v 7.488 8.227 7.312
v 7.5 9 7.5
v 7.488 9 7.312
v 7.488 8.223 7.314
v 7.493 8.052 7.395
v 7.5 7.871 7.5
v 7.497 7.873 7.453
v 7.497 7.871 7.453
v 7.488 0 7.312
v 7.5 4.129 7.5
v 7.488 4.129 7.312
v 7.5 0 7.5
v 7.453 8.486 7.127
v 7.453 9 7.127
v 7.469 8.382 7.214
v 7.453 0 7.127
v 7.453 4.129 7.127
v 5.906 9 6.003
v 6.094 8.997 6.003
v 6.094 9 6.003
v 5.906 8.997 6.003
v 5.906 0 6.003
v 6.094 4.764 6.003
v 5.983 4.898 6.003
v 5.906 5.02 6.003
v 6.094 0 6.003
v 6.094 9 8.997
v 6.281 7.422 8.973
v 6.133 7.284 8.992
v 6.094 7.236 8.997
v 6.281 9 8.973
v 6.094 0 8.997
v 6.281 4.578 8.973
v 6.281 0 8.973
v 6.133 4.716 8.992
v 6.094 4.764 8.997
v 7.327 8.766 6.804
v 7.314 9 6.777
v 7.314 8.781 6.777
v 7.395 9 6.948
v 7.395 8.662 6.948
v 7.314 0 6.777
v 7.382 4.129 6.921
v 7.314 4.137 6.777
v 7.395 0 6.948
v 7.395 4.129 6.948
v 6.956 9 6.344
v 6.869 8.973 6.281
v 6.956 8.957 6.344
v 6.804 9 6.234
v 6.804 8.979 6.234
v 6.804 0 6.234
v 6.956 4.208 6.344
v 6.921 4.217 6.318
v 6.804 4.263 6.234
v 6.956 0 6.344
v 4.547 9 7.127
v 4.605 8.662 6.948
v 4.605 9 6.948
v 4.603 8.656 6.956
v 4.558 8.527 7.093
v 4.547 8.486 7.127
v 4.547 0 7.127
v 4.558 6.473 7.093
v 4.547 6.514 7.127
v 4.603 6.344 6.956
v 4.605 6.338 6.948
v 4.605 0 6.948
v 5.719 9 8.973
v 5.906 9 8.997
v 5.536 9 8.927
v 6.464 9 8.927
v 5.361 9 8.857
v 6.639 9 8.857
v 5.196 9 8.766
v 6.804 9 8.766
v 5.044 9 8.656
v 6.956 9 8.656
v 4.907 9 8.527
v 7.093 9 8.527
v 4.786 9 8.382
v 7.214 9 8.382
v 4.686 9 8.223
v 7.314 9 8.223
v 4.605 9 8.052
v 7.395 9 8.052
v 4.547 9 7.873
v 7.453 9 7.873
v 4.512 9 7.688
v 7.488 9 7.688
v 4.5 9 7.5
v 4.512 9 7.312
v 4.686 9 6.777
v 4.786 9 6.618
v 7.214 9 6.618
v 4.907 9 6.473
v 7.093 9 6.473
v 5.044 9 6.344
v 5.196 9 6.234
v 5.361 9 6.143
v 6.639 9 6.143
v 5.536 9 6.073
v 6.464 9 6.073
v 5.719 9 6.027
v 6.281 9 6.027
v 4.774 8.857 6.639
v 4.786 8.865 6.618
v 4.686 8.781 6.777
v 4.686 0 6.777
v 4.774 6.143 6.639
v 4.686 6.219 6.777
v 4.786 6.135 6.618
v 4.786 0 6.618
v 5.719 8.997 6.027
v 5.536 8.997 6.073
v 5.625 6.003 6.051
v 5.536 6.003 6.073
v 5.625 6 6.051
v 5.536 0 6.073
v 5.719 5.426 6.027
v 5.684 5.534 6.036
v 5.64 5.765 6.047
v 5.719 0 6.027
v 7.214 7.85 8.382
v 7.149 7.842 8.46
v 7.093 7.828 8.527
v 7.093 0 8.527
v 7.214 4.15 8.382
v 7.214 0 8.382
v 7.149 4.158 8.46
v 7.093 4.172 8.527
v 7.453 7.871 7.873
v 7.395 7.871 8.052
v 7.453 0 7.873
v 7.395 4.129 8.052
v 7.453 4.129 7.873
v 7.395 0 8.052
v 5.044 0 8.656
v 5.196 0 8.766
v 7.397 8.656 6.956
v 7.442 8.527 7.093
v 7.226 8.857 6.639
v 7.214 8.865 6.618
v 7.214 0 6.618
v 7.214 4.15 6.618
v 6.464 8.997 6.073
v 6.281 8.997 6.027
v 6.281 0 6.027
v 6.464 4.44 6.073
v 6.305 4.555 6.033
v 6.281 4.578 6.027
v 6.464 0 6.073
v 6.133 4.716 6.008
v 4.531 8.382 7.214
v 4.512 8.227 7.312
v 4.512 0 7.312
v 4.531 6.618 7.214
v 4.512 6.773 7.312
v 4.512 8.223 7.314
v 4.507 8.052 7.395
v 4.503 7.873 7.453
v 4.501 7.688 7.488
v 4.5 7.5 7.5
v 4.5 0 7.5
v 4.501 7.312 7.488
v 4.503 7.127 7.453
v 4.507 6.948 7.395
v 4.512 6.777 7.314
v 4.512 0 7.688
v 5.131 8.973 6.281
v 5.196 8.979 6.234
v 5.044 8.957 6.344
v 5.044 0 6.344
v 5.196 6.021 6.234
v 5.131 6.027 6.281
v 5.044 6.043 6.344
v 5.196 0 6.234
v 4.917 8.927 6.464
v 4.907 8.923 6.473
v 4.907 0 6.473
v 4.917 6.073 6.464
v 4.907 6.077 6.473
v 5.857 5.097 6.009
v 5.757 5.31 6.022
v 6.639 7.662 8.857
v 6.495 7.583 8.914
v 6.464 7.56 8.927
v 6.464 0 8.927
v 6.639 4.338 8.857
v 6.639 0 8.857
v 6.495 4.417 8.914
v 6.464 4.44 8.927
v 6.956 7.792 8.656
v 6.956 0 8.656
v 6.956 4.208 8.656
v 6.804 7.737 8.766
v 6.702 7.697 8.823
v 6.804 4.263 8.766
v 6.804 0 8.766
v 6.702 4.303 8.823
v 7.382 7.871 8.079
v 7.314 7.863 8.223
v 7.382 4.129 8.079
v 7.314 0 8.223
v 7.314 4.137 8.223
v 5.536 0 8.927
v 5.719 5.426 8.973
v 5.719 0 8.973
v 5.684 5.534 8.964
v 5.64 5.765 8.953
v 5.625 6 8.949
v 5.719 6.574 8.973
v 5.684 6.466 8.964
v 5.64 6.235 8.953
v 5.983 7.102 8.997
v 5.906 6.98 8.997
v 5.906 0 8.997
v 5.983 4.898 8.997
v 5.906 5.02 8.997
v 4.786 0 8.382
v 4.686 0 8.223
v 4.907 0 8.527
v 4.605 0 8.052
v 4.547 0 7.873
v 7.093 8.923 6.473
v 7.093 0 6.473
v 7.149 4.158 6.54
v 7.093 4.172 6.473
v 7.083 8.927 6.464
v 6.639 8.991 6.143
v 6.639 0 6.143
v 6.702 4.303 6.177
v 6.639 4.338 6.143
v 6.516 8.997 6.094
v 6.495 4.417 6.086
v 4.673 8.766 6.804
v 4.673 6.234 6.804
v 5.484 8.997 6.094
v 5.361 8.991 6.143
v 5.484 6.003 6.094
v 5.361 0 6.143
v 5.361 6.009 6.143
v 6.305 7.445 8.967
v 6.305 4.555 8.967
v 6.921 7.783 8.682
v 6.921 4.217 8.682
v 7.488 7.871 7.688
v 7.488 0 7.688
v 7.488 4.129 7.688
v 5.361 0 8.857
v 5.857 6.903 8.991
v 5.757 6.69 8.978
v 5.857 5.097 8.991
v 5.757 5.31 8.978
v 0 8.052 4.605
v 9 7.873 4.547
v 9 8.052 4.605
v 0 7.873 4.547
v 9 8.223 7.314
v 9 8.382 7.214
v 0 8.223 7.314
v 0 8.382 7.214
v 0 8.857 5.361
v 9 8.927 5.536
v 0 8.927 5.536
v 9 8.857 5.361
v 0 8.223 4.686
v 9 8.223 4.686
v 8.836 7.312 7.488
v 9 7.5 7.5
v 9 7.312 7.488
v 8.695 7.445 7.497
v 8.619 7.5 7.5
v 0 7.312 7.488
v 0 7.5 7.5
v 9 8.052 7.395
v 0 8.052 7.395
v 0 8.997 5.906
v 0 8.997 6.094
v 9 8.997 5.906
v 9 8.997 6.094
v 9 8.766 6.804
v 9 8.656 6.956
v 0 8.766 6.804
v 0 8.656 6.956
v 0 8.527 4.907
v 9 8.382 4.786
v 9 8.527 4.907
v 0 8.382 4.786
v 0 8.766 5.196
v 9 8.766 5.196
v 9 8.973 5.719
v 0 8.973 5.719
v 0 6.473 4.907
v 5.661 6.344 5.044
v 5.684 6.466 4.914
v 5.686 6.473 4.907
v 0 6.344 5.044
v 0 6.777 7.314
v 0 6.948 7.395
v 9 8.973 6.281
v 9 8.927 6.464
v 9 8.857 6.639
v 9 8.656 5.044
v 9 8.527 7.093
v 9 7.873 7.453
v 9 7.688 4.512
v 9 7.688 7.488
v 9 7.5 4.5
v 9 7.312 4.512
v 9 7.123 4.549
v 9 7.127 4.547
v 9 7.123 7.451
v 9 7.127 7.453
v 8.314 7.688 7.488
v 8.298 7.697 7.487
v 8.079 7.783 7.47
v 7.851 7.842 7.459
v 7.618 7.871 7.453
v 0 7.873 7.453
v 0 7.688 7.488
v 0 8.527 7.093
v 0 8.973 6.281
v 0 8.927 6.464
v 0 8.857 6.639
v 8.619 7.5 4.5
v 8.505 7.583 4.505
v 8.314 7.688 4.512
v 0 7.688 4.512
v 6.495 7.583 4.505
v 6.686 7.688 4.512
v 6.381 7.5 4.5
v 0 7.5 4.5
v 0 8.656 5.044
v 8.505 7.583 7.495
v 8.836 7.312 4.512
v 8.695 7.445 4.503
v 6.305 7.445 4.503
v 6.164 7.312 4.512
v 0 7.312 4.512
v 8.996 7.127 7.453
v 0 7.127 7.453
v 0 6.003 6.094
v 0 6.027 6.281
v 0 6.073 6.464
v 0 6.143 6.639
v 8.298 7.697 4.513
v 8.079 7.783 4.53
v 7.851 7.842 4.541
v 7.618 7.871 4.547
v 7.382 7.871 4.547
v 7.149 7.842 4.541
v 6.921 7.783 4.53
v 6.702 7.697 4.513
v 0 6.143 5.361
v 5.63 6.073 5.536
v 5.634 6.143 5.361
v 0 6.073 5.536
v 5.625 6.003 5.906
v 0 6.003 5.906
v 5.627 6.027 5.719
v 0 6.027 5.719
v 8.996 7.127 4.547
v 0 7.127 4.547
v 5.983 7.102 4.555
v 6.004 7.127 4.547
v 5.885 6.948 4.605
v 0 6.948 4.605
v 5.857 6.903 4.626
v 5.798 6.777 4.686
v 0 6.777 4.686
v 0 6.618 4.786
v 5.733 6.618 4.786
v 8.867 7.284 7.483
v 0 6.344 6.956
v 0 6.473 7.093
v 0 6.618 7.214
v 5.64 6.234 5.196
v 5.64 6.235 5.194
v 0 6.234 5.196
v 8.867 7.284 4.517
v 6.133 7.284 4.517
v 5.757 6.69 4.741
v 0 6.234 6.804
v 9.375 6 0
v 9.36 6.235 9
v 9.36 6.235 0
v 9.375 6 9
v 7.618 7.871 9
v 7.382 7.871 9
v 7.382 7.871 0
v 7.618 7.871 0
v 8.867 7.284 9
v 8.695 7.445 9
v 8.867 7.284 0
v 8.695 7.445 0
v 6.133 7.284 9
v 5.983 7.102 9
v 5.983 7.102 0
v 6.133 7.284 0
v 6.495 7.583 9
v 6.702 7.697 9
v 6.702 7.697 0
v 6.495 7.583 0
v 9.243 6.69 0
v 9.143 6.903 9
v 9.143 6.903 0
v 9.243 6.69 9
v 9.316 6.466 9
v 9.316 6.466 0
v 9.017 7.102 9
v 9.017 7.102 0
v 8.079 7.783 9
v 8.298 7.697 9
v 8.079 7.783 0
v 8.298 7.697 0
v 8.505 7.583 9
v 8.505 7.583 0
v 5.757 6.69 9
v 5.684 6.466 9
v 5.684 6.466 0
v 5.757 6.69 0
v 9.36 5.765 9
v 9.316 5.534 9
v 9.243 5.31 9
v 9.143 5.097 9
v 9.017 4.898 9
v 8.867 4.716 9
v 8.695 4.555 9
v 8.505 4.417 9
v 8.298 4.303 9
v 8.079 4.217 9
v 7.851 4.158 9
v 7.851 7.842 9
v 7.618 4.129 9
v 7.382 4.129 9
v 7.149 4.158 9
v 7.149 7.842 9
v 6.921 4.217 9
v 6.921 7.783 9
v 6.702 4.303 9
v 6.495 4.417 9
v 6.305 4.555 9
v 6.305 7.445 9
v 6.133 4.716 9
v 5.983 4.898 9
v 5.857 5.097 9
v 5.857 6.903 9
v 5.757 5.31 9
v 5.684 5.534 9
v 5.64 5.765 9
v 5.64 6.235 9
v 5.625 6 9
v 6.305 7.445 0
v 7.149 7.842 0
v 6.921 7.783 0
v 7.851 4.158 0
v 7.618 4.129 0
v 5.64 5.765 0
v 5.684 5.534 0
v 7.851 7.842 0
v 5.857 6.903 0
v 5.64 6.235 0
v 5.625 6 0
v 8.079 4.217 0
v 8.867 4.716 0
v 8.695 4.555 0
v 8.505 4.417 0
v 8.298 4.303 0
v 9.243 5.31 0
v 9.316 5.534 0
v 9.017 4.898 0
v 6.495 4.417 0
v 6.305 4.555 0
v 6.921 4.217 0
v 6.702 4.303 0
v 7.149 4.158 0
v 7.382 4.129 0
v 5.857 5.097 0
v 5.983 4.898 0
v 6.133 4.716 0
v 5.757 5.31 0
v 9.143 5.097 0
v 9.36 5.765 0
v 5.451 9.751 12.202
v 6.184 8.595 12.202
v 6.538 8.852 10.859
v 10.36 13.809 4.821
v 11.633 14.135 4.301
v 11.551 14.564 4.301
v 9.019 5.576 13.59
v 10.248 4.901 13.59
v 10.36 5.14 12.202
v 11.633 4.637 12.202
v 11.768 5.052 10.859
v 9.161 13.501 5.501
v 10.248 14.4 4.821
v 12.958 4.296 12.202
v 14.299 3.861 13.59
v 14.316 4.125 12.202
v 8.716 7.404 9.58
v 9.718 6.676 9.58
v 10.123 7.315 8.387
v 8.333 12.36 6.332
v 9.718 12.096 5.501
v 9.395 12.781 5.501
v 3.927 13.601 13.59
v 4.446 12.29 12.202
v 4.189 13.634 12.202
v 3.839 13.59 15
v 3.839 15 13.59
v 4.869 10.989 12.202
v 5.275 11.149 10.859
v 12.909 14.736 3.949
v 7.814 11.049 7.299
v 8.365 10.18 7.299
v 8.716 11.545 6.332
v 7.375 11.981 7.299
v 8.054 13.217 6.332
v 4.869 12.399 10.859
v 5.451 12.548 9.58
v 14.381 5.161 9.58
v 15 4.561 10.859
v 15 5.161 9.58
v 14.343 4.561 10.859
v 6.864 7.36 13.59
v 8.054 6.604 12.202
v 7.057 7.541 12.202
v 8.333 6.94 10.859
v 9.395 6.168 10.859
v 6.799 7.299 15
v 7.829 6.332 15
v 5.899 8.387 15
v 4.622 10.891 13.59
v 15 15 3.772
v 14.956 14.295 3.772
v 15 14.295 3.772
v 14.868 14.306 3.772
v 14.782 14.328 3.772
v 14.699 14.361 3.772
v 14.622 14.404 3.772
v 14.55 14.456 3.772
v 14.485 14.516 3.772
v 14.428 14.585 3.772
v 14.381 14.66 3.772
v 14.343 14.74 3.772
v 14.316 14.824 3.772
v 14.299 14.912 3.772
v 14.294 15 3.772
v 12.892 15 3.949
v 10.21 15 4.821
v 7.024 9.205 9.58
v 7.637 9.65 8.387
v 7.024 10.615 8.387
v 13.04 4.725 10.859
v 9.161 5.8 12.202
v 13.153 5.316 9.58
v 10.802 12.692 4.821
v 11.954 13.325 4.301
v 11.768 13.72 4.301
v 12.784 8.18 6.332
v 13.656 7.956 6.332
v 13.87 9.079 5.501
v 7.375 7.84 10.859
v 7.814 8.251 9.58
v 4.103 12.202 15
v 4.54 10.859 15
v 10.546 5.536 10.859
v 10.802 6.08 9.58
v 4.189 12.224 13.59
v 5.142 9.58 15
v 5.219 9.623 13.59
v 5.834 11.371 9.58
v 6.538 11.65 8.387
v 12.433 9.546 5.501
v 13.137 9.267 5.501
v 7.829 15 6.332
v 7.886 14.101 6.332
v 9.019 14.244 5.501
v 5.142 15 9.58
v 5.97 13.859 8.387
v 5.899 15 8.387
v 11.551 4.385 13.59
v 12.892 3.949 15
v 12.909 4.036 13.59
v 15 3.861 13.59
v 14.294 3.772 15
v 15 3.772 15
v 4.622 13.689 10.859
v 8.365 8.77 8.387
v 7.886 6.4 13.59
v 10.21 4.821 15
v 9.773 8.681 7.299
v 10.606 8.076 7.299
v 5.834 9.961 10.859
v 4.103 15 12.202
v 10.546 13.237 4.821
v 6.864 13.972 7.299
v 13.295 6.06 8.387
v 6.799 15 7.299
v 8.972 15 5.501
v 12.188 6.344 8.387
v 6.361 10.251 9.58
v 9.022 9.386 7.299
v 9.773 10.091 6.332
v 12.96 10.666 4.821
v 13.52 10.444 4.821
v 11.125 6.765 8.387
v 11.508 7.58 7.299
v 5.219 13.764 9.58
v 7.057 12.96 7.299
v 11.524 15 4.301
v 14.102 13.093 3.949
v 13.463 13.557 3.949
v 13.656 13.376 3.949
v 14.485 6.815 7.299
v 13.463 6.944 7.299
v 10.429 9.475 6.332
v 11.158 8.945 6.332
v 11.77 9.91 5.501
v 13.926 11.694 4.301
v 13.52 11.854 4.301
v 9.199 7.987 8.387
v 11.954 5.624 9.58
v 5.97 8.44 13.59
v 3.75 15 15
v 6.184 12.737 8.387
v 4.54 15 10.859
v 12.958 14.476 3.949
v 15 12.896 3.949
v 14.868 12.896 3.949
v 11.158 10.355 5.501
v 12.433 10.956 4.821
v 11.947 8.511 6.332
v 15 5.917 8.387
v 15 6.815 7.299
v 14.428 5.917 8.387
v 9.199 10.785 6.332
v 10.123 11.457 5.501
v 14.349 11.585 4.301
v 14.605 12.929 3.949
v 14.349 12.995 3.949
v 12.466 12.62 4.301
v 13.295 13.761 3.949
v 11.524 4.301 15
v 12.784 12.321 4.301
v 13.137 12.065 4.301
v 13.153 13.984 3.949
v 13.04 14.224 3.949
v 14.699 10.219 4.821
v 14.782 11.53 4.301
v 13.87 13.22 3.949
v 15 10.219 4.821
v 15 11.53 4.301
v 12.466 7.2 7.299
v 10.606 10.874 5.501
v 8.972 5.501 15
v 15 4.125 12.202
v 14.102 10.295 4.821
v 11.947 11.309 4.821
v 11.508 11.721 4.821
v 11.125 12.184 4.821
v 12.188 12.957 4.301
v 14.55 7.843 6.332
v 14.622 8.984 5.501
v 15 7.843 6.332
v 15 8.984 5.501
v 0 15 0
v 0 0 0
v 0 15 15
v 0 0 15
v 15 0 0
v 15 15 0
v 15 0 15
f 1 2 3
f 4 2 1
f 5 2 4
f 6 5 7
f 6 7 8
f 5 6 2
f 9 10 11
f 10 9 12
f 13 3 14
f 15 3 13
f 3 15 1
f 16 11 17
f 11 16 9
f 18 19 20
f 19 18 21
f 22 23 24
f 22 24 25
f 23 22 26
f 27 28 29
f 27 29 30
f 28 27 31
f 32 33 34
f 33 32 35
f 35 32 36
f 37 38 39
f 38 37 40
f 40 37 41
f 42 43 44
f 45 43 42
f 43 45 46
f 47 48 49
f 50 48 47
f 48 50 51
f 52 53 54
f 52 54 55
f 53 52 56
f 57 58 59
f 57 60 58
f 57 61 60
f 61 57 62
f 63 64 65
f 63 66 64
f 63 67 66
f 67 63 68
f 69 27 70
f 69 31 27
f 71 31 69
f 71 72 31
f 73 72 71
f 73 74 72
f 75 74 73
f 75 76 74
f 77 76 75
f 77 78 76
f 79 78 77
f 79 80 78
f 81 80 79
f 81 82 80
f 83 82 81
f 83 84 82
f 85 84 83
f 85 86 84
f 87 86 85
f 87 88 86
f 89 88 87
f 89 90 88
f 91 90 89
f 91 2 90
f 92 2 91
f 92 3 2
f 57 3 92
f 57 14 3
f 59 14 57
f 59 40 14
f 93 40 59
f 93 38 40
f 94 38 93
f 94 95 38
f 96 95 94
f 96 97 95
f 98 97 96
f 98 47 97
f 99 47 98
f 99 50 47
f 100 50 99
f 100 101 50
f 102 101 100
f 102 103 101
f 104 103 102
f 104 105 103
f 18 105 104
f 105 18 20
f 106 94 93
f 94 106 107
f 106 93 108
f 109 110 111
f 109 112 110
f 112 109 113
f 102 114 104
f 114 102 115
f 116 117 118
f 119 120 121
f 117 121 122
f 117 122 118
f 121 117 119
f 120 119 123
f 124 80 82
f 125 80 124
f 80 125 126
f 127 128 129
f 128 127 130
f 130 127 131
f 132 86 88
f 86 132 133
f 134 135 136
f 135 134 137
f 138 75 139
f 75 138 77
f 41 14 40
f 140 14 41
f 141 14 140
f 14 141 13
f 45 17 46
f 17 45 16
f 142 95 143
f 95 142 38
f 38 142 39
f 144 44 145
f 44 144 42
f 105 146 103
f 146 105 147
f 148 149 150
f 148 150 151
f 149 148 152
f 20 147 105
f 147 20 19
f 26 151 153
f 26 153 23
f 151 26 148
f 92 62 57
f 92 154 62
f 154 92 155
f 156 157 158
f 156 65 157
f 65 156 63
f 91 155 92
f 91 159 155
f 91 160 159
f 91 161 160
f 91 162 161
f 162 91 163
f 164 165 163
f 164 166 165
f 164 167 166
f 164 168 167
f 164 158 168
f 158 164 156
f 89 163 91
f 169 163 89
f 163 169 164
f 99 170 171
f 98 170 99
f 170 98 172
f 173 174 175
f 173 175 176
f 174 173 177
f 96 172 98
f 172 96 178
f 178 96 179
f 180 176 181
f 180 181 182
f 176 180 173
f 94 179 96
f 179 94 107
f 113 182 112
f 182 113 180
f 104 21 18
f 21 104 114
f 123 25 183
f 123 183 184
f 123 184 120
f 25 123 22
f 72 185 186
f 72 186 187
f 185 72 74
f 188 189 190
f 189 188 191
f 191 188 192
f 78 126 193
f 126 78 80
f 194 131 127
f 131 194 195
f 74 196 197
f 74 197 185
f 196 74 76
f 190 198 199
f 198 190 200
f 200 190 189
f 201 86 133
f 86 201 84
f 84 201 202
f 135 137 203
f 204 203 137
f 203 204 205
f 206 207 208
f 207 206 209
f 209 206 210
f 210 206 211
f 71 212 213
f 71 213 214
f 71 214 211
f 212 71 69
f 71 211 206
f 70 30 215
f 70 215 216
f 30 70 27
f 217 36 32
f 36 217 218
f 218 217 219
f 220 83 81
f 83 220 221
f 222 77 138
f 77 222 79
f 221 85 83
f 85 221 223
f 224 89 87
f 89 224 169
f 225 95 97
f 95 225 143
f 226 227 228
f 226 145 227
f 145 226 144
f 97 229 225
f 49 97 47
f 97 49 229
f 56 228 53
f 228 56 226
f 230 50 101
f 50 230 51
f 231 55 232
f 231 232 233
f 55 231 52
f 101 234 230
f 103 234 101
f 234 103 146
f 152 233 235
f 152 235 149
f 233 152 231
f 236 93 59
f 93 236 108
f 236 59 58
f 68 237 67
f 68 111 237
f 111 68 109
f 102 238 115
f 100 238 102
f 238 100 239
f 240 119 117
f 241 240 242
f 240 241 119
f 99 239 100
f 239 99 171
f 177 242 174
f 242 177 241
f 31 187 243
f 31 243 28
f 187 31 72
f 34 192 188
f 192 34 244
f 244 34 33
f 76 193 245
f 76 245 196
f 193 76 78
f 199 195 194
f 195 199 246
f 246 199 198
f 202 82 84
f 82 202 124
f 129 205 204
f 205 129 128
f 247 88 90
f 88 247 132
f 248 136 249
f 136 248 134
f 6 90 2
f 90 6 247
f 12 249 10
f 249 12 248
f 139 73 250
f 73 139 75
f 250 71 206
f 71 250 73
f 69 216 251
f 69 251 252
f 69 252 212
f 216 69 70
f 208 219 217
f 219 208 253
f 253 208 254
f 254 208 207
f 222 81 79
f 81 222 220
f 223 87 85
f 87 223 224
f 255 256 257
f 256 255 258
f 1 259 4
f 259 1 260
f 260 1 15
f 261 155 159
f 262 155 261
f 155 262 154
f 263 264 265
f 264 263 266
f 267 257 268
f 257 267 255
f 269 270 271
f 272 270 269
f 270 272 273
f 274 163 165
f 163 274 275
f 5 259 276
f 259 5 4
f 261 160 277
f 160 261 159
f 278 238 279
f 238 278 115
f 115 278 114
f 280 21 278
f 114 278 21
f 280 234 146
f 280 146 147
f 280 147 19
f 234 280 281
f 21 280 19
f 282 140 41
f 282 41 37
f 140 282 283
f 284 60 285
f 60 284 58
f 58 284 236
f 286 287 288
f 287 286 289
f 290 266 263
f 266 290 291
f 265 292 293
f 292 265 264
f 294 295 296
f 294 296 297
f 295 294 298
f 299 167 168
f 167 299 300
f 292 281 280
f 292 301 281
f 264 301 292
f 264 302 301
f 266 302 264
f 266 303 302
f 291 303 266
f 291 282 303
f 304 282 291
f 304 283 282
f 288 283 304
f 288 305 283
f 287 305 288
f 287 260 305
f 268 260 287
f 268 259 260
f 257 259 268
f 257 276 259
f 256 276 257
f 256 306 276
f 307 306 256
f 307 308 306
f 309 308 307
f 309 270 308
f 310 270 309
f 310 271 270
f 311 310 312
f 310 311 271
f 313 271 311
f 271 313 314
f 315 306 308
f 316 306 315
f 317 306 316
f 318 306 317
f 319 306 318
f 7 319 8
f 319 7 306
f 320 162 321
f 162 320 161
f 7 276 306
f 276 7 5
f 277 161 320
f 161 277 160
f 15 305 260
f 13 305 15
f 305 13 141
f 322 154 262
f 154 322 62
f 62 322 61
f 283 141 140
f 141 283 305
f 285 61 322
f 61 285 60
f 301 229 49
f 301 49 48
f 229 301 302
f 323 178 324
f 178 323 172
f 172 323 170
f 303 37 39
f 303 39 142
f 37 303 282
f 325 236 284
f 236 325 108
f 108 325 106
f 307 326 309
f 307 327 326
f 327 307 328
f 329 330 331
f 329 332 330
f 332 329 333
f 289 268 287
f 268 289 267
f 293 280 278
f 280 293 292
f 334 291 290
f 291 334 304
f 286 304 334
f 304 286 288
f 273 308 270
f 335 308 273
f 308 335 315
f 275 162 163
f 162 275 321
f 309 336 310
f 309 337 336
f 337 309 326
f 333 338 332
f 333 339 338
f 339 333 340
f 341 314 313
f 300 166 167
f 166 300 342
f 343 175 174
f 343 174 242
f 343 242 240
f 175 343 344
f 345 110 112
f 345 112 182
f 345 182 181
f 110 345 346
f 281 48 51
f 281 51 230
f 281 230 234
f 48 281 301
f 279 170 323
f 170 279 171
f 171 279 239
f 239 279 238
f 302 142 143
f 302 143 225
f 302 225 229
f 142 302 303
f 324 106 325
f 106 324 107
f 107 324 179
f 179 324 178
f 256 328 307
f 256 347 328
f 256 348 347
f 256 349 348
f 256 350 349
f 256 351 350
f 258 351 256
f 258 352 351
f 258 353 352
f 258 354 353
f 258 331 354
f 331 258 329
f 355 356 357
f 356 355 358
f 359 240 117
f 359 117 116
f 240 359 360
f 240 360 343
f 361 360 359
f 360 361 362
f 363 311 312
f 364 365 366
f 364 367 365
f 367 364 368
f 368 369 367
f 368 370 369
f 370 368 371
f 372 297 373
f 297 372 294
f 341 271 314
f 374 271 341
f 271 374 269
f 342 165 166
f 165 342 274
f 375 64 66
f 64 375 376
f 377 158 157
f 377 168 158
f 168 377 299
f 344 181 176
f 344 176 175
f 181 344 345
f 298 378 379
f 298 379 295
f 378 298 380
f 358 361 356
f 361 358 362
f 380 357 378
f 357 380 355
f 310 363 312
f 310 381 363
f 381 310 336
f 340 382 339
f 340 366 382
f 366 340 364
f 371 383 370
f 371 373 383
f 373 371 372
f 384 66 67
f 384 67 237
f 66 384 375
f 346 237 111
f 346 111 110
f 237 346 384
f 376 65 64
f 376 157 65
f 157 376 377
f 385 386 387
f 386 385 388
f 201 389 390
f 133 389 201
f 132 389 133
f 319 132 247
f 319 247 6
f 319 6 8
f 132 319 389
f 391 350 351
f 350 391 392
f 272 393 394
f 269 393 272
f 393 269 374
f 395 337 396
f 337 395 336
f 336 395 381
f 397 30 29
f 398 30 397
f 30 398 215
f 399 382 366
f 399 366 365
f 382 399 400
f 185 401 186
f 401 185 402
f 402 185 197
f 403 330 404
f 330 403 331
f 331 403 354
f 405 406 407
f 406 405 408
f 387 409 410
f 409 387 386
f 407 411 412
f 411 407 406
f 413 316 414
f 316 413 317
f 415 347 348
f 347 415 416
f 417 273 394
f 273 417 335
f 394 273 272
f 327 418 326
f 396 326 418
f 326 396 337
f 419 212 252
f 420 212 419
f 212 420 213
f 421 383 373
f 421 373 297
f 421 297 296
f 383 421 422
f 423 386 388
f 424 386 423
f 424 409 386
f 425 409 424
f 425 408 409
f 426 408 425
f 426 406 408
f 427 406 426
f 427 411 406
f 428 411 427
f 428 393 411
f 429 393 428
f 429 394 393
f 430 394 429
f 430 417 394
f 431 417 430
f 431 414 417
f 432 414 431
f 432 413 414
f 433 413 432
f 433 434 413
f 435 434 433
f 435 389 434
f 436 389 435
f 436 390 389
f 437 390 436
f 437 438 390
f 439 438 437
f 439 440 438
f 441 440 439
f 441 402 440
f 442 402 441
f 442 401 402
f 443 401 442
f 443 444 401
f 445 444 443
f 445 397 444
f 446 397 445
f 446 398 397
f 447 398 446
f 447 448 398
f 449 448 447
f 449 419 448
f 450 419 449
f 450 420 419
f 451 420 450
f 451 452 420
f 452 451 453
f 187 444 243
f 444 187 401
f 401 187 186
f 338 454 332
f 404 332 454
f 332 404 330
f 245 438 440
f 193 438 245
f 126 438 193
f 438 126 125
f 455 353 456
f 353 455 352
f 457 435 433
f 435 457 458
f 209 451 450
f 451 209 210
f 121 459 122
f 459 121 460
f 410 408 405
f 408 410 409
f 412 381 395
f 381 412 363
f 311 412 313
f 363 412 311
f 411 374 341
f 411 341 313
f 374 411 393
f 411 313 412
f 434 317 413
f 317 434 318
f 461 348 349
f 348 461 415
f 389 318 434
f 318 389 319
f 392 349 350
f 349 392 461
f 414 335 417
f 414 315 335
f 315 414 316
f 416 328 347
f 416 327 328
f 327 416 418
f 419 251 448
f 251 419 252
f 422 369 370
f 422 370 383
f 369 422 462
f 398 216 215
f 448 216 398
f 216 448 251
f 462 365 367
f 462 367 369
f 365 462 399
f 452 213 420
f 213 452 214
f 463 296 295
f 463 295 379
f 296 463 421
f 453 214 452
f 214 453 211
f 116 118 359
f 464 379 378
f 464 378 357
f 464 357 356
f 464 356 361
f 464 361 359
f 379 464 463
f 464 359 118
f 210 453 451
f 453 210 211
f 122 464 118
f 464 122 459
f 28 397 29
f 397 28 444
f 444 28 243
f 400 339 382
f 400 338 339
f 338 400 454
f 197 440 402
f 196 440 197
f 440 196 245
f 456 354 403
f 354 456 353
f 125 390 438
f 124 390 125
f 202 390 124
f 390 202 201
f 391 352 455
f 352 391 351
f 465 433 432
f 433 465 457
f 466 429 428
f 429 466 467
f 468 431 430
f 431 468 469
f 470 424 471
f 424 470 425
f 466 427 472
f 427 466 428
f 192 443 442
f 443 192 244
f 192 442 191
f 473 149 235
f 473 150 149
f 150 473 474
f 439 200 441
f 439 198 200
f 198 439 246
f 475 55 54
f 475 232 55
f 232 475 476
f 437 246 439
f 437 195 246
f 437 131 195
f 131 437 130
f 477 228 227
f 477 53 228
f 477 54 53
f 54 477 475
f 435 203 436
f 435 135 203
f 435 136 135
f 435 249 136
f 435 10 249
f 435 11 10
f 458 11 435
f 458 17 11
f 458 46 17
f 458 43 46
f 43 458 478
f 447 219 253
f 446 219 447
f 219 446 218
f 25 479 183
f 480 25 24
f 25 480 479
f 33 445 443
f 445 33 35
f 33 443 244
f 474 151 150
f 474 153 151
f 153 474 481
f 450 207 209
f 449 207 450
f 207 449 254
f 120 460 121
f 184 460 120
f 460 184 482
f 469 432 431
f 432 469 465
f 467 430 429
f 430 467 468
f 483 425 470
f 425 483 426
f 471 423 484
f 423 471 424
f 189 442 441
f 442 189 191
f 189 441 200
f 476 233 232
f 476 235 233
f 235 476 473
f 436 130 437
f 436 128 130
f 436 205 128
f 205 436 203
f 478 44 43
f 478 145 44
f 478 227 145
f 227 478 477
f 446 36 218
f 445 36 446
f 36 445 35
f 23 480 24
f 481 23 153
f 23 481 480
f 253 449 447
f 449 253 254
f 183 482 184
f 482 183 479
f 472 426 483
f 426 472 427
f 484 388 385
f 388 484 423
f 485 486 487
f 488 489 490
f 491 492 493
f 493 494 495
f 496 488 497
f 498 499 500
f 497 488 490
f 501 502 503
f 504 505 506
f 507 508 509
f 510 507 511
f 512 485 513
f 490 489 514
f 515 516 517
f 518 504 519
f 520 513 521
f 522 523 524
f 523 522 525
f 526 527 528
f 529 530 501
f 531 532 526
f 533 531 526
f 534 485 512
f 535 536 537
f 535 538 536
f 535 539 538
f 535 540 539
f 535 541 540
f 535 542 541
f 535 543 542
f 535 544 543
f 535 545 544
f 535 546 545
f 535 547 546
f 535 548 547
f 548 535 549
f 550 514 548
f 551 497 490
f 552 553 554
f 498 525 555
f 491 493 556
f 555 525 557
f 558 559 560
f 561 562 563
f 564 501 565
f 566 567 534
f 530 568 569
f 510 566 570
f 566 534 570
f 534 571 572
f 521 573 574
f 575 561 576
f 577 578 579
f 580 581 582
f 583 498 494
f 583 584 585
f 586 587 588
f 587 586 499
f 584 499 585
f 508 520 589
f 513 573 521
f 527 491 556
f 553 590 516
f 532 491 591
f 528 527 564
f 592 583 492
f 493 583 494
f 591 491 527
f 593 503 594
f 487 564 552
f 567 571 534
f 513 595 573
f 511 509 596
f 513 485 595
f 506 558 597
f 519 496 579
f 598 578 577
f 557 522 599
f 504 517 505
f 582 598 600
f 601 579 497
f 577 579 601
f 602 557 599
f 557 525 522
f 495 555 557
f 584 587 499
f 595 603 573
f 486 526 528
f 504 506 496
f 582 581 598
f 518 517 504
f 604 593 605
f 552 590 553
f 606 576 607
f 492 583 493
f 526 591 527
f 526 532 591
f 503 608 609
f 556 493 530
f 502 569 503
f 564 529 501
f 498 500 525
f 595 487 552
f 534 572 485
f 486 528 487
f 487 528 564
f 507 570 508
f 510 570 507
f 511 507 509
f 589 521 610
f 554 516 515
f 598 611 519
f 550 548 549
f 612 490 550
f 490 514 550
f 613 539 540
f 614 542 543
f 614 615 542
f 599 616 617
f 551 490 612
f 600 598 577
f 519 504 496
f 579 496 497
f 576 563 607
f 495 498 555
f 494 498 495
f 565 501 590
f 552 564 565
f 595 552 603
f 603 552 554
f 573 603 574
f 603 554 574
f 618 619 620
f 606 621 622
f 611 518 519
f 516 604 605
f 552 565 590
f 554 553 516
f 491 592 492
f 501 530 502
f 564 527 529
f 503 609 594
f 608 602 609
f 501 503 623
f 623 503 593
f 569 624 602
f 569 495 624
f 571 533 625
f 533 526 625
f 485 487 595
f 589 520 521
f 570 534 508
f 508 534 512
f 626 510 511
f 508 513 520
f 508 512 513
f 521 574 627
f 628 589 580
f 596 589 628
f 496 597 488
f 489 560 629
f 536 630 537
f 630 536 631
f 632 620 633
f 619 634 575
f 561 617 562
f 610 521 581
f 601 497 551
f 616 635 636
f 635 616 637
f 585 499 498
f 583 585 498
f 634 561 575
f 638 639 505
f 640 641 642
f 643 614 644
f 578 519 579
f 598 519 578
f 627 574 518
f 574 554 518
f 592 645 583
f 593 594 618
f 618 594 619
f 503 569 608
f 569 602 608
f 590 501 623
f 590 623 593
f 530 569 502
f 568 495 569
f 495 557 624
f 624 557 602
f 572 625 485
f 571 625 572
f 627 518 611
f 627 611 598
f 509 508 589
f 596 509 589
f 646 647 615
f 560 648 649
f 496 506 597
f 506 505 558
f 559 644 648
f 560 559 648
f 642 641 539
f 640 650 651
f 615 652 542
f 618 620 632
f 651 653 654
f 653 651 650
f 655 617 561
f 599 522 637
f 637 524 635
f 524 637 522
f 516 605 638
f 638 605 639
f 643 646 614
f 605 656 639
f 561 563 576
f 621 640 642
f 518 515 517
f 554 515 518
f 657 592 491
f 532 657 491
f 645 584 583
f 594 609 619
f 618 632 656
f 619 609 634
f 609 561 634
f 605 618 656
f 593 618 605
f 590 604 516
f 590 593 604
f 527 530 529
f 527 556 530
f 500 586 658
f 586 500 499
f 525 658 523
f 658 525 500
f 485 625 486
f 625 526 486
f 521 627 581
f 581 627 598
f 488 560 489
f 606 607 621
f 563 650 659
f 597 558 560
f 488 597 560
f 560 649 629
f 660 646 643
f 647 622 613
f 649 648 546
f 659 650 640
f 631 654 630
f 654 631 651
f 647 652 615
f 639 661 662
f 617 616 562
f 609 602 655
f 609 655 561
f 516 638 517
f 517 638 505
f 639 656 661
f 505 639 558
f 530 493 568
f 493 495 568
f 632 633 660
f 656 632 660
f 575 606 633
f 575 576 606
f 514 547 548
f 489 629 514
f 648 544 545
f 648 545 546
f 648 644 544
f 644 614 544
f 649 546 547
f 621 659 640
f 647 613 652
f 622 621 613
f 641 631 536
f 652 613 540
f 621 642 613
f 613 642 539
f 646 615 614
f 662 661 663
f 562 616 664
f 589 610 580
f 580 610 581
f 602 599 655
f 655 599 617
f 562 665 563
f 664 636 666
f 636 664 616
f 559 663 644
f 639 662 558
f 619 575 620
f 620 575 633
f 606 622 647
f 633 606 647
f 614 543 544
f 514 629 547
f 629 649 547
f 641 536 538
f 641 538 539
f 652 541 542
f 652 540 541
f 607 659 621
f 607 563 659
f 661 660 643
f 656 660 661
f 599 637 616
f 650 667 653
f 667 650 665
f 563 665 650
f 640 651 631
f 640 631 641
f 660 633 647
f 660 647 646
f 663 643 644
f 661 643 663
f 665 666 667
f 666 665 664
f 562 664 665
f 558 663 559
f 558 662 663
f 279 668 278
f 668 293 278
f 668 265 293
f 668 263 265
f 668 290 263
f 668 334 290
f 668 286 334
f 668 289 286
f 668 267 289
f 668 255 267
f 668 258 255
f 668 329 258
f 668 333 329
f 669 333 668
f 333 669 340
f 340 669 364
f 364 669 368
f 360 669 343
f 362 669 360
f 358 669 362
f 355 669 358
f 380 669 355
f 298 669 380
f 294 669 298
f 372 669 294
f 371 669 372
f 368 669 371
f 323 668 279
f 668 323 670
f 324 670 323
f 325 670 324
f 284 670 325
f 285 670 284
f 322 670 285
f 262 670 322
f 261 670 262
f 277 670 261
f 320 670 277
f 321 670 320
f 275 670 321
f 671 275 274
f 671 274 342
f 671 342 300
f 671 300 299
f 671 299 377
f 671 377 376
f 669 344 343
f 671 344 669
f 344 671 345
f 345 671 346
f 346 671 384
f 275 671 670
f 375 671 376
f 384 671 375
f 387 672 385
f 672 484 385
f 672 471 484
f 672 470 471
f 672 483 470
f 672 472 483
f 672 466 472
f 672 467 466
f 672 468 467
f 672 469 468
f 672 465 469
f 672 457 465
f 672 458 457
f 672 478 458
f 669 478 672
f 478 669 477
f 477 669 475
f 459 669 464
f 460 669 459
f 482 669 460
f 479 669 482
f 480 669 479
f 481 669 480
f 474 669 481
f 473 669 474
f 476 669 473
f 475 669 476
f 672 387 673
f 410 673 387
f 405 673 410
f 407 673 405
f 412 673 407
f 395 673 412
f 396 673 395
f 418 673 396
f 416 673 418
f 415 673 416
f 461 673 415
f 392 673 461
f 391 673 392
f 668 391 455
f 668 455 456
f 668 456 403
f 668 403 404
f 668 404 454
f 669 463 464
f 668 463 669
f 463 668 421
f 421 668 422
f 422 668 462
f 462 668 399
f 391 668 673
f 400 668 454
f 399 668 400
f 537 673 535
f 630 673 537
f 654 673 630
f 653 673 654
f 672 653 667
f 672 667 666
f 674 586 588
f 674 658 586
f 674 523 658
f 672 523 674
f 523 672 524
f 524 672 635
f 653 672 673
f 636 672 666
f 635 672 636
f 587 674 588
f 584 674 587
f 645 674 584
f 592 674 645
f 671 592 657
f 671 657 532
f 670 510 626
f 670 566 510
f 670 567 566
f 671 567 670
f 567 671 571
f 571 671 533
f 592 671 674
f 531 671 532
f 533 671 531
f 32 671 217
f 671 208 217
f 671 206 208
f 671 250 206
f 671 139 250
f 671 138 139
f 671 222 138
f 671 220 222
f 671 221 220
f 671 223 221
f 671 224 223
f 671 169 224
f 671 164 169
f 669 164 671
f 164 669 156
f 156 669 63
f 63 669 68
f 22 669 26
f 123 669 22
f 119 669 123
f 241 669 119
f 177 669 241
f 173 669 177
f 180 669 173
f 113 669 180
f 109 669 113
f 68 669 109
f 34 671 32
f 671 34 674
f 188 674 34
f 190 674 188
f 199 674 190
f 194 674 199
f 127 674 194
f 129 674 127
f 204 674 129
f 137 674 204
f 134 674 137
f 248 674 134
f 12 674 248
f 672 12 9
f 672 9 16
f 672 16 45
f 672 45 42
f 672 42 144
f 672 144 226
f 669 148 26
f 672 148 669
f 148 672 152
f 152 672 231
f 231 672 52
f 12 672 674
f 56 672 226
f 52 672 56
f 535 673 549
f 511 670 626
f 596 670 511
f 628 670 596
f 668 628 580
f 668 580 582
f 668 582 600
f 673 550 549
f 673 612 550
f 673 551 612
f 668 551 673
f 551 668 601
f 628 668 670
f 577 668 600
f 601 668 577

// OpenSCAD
// A corner for the Nixie clock case

$fn = 50;

module nixieCorner() {
    scale(.75) difference() {
        cube([2, 2, 2]);
        union() {
            translate([.8, 1.2, 1])
                rotate([90, 0, 0]) 
                    cylinder(1.3, .2, .2);
            
            translate([-.1, 1, 1.2])
                rotate([0, 90, 0]) 
                    cylinder(1.3, .2, .2);
            
            translate([1, .8, .8])
                cylinder(1.3, .25, .25);
            
            translate([2, 2, 0]) sphere(1.5);
        }
    }
}

scale(10)
    translate([0, 0, 1.5])
    mirror([0, 0, 1])
    nixieCorner(0, 0, 0);
